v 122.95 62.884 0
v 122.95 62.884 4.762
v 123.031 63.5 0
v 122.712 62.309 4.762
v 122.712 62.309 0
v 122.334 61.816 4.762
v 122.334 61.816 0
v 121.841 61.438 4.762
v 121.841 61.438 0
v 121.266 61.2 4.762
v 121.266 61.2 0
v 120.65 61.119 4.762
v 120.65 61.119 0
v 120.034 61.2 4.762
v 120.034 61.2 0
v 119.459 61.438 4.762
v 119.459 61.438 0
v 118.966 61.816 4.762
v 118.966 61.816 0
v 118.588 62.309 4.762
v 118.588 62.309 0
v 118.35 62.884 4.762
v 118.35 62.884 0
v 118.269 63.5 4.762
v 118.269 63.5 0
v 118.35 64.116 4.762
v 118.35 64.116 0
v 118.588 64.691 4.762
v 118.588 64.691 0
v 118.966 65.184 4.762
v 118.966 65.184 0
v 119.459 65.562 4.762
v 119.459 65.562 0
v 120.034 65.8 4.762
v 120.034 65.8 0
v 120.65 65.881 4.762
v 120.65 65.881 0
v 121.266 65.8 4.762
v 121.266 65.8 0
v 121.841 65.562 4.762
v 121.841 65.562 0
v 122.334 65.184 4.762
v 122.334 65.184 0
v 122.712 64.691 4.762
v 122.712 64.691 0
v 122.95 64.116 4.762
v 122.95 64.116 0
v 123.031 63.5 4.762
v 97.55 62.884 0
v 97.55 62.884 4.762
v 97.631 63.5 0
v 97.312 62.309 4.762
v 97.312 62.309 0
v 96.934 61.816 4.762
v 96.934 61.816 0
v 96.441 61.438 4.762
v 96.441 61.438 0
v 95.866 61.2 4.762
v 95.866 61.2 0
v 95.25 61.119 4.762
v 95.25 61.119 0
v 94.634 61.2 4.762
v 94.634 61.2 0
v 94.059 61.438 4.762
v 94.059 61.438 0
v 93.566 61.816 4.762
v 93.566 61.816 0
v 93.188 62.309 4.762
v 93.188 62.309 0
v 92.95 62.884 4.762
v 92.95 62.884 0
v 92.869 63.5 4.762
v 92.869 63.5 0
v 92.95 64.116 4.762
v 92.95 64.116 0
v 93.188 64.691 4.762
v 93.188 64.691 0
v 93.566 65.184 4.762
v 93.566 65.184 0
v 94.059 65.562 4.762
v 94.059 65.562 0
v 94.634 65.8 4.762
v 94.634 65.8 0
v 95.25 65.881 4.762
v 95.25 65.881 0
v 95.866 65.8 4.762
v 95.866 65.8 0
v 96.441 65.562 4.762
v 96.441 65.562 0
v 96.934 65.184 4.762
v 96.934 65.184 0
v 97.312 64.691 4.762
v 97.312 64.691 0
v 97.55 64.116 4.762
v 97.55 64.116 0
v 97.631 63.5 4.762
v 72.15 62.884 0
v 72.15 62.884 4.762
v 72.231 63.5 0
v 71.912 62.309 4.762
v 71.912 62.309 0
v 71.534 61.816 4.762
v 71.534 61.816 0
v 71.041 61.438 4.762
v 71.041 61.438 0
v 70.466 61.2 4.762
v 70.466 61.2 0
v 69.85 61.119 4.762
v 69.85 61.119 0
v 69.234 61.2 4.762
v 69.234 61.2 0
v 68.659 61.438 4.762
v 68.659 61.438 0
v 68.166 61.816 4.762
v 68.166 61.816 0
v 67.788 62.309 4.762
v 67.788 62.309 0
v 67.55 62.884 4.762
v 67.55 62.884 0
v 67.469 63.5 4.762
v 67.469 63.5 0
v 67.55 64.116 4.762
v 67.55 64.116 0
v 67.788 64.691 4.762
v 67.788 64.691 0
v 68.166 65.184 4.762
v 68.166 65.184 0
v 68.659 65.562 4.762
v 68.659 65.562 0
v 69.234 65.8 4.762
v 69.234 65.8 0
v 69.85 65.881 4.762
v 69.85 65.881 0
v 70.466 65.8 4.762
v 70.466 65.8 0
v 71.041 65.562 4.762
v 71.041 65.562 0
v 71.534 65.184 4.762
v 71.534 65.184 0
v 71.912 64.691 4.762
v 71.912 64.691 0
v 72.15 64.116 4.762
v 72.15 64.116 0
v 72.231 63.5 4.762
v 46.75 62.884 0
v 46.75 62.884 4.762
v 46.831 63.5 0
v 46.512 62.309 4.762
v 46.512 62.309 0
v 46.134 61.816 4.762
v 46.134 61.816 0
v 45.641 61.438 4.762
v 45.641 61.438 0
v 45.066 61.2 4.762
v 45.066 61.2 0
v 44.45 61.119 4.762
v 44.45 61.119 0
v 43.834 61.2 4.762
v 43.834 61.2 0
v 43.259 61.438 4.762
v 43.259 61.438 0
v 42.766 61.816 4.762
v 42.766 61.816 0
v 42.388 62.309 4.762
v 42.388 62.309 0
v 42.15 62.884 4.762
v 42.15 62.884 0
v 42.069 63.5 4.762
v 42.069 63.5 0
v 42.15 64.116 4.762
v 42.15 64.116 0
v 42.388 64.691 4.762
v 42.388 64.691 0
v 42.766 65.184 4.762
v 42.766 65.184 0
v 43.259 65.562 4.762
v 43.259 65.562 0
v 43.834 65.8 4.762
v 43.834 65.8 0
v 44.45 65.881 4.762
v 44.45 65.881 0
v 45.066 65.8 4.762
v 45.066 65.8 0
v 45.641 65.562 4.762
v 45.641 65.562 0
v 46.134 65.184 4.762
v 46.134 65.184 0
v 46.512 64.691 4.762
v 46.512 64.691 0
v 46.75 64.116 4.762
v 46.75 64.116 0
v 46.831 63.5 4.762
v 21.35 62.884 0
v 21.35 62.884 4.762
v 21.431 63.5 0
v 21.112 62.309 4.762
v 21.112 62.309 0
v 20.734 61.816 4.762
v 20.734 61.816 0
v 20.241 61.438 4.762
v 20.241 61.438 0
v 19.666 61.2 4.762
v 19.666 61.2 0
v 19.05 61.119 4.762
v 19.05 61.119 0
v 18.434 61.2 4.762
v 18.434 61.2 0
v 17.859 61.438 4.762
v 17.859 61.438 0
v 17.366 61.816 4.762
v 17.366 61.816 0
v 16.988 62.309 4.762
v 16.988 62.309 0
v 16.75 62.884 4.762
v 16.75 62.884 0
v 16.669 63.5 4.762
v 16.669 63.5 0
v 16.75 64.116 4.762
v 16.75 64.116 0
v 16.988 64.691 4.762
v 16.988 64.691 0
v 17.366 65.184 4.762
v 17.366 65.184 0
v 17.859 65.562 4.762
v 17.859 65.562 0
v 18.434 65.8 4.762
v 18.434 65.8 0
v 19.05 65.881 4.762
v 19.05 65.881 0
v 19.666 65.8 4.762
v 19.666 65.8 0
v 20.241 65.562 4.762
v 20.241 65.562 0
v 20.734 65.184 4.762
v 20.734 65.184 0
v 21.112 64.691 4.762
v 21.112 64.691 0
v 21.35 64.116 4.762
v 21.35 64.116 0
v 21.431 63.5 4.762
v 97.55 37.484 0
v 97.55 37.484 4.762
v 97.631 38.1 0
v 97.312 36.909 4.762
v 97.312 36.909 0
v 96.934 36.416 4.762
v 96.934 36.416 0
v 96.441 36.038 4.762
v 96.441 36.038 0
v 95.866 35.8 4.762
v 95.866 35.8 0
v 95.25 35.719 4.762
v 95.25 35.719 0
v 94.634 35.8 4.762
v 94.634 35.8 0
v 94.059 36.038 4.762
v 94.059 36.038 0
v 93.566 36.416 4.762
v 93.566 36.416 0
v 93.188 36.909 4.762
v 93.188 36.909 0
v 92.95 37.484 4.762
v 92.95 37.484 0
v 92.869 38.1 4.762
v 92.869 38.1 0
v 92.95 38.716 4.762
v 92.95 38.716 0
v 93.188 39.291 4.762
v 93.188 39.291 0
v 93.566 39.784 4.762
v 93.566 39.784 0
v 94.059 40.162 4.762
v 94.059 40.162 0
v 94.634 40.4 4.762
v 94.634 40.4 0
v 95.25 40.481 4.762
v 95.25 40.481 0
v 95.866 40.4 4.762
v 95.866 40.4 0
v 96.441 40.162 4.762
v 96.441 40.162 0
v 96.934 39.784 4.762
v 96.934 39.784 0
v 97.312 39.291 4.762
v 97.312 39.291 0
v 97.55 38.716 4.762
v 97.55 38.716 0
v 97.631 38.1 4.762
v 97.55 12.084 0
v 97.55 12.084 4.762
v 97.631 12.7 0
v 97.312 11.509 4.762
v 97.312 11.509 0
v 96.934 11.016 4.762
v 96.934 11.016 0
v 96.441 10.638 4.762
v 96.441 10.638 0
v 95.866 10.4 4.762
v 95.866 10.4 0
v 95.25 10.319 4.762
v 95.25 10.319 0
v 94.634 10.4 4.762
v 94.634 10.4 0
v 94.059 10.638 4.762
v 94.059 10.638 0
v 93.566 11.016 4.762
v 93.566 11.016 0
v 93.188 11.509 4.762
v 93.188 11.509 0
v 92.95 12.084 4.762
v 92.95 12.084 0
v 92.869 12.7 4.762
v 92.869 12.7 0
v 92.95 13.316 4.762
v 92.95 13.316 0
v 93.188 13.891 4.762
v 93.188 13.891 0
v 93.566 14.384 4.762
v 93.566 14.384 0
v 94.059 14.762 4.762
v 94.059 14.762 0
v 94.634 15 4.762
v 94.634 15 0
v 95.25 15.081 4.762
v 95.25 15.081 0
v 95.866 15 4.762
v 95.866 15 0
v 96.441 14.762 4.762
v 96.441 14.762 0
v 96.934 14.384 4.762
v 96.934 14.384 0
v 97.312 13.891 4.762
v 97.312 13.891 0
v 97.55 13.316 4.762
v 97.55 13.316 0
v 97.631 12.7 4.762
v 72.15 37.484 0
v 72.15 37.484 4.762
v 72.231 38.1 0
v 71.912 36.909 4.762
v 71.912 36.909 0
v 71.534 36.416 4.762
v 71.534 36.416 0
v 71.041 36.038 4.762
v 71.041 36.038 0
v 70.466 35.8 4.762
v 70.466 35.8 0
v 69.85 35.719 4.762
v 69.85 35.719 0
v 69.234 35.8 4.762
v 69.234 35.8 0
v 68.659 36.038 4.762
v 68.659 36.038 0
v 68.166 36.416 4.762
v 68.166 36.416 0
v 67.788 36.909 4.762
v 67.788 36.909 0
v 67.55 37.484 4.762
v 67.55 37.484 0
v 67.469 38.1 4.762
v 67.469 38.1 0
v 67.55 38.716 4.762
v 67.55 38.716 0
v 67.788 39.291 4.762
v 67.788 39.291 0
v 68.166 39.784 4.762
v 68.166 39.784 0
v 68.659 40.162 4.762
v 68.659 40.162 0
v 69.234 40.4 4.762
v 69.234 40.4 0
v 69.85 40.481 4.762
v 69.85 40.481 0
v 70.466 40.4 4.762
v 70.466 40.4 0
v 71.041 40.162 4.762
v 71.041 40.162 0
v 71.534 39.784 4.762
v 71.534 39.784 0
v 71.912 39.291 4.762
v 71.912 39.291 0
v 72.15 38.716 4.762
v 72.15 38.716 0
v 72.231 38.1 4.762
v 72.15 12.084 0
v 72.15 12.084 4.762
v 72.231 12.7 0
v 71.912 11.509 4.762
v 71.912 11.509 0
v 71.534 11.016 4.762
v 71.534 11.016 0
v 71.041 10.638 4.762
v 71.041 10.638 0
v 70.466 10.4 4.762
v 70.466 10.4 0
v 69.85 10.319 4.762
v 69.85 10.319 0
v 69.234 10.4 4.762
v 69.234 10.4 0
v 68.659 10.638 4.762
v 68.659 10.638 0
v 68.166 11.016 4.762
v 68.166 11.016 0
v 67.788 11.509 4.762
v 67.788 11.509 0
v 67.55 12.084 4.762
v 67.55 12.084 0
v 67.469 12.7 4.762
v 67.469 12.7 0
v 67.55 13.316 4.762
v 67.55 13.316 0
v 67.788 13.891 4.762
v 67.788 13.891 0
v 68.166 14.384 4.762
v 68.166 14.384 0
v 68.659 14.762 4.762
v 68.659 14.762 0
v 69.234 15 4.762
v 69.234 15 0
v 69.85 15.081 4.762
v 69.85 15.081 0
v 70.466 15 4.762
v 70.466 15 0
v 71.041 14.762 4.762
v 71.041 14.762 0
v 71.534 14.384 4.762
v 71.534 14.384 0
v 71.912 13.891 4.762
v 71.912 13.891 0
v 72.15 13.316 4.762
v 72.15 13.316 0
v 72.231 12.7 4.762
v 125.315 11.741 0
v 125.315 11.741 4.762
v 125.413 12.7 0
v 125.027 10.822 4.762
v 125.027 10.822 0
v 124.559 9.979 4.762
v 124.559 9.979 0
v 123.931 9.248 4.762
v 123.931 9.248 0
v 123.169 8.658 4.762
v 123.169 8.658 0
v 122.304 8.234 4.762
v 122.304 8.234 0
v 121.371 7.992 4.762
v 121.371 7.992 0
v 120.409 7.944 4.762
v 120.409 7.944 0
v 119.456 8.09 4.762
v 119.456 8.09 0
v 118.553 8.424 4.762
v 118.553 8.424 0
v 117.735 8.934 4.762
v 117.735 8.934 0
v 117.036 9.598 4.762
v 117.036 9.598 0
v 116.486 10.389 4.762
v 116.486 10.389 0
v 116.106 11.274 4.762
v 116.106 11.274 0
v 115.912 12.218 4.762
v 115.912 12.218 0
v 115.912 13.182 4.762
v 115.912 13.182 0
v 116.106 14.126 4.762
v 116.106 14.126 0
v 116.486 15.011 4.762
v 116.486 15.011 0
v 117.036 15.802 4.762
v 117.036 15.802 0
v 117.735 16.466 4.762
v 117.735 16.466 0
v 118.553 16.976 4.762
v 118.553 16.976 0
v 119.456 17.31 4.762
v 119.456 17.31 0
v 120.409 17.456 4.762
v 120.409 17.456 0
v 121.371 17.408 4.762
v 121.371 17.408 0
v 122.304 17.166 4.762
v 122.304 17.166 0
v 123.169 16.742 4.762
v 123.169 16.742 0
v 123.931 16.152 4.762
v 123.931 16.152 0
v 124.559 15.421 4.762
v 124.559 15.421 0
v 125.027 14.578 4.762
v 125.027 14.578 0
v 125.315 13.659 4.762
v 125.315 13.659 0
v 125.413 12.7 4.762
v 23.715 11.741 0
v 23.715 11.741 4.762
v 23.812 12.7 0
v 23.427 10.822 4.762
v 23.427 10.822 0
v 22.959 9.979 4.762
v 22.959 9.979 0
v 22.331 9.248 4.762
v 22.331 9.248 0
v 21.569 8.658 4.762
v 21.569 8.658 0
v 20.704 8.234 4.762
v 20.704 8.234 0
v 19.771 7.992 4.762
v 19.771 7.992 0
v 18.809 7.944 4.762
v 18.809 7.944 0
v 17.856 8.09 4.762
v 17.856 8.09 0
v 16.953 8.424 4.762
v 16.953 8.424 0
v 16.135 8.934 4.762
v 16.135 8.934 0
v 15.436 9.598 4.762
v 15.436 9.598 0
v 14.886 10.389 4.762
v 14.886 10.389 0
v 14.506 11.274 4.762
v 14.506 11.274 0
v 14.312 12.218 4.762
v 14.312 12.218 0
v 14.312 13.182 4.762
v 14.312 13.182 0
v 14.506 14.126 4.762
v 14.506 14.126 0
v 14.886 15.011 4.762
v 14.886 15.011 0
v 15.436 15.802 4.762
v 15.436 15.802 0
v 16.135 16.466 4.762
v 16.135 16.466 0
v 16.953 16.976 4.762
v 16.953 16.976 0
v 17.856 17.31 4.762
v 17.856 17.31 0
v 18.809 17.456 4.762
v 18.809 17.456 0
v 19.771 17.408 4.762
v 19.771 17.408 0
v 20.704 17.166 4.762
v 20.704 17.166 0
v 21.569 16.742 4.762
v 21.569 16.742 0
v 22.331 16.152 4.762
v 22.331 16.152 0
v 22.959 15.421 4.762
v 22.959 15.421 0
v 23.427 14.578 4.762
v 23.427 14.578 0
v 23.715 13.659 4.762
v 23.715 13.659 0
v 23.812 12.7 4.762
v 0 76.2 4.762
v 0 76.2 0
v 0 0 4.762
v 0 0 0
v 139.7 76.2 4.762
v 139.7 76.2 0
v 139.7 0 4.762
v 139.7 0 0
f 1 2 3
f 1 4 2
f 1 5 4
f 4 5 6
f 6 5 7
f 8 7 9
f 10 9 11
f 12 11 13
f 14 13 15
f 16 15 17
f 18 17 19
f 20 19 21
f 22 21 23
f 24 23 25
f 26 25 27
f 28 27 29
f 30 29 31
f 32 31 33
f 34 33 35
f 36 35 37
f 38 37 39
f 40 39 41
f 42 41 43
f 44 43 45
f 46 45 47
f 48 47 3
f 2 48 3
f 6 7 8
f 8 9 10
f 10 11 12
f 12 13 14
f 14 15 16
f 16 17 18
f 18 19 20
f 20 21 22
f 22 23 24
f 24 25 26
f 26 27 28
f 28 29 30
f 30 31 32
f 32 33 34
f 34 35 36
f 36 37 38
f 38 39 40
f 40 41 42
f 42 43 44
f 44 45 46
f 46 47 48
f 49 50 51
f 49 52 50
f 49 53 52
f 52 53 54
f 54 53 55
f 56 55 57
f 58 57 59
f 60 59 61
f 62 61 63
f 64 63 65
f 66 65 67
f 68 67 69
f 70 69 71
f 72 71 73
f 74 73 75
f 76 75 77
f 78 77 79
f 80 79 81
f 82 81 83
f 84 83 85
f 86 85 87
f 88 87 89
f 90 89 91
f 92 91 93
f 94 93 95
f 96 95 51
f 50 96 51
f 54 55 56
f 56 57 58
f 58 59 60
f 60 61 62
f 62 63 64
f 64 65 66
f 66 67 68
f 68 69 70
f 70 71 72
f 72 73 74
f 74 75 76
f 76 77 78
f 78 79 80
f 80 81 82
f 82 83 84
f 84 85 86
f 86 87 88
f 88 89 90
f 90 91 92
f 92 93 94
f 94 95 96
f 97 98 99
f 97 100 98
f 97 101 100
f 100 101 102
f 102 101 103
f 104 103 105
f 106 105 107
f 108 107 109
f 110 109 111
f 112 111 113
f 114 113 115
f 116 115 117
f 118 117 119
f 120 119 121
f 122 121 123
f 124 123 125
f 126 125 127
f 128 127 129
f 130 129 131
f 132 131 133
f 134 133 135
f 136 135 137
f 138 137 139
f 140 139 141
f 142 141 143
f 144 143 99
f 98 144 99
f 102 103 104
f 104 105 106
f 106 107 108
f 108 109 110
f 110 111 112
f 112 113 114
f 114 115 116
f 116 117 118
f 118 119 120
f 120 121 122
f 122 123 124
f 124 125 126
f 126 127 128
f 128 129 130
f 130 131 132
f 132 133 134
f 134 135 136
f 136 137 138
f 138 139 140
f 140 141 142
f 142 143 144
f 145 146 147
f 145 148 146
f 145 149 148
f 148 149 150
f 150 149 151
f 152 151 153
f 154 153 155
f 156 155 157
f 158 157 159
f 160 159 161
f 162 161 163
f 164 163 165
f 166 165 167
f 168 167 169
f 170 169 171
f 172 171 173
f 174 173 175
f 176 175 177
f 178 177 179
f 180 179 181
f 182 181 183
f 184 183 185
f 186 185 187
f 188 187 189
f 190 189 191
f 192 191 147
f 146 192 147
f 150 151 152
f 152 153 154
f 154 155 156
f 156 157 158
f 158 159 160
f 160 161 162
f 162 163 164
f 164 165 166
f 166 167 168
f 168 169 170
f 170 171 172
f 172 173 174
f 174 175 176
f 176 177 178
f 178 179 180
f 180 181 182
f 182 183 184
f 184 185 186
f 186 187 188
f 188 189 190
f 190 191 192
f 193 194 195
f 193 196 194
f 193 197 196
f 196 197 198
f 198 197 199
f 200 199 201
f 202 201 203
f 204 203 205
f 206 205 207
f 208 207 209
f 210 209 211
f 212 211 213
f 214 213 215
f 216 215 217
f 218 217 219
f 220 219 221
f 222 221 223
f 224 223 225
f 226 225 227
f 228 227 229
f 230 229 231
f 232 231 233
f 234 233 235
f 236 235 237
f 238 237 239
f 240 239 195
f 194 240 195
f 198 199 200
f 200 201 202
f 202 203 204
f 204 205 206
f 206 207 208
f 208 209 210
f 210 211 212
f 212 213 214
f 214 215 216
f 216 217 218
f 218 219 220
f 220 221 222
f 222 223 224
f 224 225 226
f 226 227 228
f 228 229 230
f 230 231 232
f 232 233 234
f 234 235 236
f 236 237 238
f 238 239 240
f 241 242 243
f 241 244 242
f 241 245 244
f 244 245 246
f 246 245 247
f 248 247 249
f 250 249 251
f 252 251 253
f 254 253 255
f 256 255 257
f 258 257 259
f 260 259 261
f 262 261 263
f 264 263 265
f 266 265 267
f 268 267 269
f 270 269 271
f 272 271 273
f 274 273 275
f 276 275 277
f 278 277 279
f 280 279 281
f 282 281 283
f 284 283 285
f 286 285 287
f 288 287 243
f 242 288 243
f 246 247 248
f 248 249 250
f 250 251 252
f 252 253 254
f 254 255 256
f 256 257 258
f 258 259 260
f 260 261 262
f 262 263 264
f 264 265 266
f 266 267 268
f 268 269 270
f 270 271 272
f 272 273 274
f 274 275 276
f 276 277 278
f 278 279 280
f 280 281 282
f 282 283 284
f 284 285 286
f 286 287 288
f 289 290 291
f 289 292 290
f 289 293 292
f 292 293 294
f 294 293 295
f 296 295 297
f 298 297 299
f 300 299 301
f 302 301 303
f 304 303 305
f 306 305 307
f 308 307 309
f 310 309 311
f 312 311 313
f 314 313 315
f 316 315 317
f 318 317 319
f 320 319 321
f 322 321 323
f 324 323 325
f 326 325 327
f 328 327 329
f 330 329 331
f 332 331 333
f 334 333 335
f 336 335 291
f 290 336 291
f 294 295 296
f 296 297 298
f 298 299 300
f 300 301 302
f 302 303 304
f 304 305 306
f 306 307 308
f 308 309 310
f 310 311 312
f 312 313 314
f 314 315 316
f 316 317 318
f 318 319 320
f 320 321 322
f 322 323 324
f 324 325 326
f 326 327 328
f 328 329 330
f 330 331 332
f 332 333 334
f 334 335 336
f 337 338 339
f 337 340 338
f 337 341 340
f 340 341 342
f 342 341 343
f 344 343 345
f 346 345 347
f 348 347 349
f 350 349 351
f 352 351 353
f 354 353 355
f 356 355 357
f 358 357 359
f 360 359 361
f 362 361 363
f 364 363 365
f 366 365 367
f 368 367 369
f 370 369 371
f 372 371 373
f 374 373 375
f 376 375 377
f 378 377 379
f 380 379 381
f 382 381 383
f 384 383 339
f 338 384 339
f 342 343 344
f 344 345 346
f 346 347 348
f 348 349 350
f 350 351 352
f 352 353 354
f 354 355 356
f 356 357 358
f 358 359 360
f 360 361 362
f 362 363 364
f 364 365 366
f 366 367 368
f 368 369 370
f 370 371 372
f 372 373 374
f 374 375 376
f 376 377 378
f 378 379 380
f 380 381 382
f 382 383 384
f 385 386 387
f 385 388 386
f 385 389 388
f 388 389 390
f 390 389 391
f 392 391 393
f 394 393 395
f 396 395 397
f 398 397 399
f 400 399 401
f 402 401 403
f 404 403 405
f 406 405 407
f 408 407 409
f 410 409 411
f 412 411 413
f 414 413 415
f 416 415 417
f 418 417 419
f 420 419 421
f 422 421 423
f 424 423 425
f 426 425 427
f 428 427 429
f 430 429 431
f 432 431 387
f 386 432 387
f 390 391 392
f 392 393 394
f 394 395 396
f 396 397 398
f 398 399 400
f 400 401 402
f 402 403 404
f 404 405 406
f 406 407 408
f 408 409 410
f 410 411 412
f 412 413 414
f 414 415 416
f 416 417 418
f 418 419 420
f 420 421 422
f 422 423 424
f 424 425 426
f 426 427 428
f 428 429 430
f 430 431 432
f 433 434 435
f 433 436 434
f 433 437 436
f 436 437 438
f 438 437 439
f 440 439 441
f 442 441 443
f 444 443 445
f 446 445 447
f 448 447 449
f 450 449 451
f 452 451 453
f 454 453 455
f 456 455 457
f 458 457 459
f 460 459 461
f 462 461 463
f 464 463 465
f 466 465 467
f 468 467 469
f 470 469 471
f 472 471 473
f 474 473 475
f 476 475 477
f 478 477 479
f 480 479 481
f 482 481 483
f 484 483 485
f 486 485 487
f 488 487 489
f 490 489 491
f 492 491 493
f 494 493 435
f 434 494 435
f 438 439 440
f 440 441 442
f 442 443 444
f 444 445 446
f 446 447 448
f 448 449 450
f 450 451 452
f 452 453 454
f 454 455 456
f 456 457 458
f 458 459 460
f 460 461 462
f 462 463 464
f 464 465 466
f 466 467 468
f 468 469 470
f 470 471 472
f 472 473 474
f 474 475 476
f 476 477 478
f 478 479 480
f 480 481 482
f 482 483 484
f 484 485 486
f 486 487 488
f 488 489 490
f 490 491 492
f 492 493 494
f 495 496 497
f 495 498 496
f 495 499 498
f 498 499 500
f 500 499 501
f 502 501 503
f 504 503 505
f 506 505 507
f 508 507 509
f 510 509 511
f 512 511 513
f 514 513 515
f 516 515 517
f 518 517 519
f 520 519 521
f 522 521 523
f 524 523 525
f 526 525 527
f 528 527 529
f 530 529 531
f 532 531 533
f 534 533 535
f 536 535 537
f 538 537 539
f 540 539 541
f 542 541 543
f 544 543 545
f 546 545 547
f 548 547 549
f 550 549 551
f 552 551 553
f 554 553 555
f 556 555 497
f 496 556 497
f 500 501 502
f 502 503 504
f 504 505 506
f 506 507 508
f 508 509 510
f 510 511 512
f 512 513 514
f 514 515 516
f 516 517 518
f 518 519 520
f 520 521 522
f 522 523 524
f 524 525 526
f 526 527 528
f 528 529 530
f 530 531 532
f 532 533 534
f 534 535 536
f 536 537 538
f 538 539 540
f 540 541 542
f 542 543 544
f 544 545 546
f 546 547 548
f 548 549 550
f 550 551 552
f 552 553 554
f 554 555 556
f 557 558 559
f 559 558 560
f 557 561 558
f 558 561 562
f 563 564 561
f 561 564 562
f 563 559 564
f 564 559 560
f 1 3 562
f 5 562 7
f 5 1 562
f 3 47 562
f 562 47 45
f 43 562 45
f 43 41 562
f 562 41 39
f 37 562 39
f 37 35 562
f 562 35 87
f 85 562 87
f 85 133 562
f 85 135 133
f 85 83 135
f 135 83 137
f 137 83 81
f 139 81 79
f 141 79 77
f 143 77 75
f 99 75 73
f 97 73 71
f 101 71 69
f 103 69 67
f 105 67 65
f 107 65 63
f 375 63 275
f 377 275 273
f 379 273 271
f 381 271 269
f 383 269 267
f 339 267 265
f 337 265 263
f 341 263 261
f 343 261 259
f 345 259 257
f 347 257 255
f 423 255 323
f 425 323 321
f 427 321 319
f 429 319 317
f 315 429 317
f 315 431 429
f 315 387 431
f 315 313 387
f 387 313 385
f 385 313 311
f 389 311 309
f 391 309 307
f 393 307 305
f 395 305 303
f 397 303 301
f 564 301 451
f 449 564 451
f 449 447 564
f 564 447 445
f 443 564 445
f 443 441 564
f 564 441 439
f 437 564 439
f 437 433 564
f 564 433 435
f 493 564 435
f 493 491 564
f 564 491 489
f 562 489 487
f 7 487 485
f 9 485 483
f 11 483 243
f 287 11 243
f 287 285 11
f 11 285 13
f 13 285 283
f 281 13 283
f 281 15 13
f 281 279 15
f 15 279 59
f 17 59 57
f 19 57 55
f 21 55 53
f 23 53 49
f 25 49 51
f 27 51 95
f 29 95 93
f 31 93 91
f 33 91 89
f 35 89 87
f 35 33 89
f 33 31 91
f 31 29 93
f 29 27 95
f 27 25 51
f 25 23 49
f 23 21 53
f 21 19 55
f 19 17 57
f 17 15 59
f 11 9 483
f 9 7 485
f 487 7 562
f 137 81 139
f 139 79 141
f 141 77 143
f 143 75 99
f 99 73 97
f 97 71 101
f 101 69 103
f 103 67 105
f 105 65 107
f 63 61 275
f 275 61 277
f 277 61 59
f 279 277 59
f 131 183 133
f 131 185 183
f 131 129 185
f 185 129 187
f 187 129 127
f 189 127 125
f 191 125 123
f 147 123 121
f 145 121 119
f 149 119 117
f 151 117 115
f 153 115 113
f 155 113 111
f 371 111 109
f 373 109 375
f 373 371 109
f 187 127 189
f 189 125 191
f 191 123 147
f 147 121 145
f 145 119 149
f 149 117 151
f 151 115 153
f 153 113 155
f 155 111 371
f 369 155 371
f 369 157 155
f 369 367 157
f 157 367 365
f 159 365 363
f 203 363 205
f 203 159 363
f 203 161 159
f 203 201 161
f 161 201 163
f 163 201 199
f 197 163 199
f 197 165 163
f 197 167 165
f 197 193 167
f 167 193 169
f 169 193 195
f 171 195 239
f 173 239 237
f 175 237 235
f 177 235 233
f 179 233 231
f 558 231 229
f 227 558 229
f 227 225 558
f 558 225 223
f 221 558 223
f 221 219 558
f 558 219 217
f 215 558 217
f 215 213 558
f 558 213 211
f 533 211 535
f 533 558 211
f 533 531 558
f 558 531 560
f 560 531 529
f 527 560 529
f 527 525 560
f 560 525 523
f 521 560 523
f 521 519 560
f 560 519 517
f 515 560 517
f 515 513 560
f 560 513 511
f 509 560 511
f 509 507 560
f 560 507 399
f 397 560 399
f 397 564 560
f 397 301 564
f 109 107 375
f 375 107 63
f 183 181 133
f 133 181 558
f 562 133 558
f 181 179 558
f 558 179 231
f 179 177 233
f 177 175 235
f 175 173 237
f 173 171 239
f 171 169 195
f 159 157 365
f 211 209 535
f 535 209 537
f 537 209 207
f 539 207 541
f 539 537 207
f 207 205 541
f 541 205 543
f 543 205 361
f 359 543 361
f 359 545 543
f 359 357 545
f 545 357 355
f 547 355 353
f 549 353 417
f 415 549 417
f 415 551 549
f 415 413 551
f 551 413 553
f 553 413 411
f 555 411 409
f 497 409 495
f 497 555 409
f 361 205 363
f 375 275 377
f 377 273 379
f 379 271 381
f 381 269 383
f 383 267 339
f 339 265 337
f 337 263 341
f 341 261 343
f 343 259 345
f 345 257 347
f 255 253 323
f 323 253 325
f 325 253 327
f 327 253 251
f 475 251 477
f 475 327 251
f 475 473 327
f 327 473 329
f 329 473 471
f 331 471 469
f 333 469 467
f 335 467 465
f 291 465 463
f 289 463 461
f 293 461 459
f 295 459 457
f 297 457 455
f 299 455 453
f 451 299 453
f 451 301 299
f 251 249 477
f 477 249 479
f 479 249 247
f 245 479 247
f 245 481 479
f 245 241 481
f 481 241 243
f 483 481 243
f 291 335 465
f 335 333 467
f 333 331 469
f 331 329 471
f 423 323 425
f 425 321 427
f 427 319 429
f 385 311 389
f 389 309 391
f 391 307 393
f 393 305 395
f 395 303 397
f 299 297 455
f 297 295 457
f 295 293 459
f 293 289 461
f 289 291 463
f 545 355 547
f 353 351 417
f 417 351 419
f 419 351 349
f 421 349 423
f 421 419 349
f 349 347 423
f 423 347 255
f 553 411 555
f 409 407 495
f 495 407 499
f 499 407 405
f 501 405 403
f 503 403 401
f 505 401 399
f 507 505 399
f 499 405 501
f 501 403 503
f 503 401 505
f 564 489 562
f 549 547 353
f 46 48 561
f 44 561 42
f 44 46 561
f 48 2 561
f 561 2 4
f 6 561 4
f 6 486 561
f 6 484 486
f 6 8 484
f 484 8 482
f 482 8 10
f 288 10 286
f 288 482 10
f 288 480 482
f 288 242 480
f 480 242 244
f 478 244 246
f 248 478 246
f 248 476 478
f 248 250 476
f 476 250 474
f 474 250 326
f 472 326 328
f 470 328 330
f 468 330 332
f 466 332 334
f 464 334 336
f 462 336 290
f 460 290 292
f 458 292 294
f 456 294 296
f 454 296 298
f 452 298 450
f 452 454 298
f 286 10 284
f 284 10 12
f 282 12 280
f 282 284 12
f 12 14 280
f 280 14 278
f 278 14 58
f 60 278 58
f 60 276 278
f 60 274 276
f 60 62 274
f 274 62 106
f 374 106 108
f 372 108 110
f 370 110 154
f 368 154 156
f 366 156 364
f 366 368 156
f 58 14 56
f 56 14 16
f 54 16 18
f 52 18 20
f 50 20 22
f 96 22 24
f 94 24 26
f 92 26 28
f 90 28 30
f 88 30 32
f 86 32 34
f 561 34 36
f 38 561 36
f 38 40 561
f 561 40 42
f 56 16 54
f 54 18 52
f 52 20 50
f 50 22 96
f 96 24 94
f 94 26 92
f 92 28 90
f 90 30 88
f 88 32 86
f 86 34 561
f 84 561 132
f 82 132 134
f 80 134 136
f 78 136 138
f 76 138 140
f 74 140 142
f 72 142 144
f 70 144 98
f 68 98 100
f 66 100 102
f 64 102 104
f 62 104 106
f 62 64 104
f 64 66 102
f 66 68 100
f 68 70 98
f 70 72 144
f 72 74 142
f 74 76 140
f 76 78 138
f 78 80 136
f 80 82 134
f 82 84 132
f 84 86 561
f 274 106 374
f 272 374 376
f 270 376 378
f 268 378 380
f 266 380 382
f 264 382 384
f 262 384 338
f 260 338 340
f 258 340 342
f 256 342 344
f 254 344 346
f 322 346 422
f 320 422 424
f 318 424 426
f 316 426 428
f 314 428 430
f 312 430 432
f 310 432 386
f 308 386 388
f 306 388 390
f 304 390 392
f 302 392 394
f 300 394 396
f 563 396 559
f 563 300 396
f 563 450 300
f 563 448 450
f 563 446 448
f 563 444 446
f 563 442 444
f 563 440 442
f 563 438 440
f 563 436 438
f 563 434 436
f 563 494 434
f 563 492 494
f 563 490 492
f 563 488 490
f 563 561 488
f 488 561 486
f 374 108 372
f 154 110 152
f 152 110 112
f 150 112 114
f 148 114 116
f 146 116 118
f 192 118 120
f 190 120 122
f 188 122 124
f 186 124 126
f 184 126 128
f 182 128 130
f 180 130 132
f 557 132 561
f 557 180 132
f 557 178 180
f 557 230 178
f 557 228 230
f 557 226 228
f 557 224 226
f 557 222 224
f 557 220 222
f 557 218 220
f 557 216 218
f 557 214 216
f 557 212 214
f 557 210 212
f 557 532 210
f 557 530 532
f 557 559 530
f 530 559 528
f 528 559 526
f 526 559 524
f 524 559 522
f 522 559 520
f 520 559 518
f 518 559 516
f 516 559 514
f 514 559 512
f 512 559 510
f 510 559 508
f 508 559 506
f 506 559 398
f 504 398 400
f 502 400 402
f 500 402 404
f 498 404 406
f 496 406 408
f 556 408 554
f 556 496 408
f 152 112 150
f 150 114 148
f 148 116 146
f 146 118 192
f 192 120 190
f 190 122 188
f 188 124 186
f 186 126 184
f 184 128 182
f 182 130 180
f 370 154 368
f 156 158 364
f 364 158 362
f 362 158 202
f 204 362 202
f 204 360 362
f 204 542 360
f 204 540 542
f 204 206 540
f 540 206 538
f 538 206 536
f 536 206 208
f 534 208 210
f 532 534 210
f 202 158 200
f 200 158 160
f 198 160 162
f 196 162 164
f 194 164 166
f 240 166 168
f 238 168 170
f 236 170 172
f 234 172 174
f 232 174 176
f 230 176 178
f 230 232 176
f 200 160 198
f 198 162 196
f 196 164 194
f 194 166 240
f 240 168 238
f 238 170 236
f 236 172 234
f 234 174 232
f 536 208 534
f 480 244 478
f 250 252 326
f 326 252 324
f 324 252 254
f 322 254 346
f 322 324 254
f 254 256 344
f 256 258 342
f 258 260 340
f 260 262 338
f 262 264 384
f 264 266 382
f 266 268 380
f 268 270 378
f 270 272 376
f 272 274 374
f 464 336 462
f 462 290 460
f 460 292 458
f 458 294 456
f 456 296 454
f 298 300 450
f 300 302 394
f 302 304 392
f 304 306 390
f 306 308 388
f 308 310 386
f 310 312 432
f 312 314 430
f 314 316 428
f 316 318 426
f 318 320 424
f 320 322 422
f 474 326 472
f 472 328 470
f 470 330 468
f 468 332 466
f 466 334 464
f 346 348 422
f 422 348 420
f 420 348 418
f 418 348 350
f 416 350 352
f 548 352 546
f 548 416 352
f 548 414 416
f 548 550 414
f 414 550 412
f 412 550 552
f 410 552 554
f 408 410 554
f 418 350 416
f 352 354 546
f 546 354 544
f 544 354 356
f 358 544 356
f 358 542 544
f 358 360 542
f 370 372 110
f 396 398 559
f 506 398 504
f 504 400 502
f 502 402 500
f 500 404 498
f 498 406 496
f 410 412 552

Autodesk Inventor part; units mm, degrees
ref_plane "YZ Plane" through (0, 0, 0) normal (1, 0, 0) x (0, 1, 0)
ref_plane "XZ Plane" through (0, 0, 0) normal (0, 1, 0) x (-1, 0, 0)
ref_plane "XY Plane" through (0, 0, 0) normal (0, 0, 1) x (1, 0, 0)
sketch "Sketch1" plane through (0, 0, 0) normal (0, 0, 1) x (1, 0, 0)
  line L0 (0, 0) -> (139.7, 0)
  line L1 (139.7, 0) -> (139.7, 76.2)
  line L2 (139.7, 76.2) -> (0, 76.2)
  line L3 (0, 76.2) -> (0, 0)
  dimension "d0" = 139.7
  dimension "d1" = 76.2
extrude "Extrusion1" add sketch "Sketch1" along normal blind 4.7625
sketch "Sketch2" plane through (0, 0, 4.7625) normal (0, 0, 1) x (1, 0, 0)
  line L0 (0, 0) -> (0, 76.2) projected
  line L1 (139.7, 0) -> (0, 0) projected
  circle A0 centre (19.05, 12.7) radius 4.7625
  circle A1 centre (120.65, 12.7) radius 4.7625
  line L2 (19.05, 12.7) -> (120.65, 12.7) construction
  dimension "d4" = 12.7
  dimension "d5" = 19.05
  dimension "d6" = 101.6
  dimension "d7" = 9.525
extrude "Extrusion2" cut sketch "Sketch2" against normal up to next
sketch "Sketch3" plane through (0, 0, 4.7625) normal (0, 0, 1) x (1, 0, 0)
  circle A0 centre (19.05, 12.7) radius 4.7625 projected
  line L0 (139.7, 0) -> (0, 0) projected
  circle A1 centre (69.85, 12.7) radius 2.3813
  dimension "d10" = 4.7625
  dimension "d11" = 12.7
  dimension "d13" = 50.8
extrude "Extrusion3" cut sketch "Sketch3" against normal up to next contours A1
pattern_linear "Rectangular Pattern1" count 2 spacing 25.4 along (0, 1, 0) count 2 spacing 25.4 along (1, 0, 0) of "Extrusion3"
sketch "Sketch4" plane through (0, 0, 4.7625) normal (0, 0, 1) x (1, 0, 0)
  line L0 (0, 0) -> (0, 76.2) projected
  line L1 (0, 76.2) -> (139.7, 76.2) projected
  circle A0 centre (19.05, 63.5) radius 2.3813
  dimension "d22" = 4.7625
  dimension "d23" = 12.7
  dimension "d24" = 19.05
extrude "Extrusion4" cut sketch "Sketch4" against normal up to next
pattern_linear "Rectangular Pattern2" count 5 spacing 25.4 along (1, 0, 0) of "Extrusion4"
properties part number "Frame_TopFrontRollerPlate" material "Aluminum-6061"
